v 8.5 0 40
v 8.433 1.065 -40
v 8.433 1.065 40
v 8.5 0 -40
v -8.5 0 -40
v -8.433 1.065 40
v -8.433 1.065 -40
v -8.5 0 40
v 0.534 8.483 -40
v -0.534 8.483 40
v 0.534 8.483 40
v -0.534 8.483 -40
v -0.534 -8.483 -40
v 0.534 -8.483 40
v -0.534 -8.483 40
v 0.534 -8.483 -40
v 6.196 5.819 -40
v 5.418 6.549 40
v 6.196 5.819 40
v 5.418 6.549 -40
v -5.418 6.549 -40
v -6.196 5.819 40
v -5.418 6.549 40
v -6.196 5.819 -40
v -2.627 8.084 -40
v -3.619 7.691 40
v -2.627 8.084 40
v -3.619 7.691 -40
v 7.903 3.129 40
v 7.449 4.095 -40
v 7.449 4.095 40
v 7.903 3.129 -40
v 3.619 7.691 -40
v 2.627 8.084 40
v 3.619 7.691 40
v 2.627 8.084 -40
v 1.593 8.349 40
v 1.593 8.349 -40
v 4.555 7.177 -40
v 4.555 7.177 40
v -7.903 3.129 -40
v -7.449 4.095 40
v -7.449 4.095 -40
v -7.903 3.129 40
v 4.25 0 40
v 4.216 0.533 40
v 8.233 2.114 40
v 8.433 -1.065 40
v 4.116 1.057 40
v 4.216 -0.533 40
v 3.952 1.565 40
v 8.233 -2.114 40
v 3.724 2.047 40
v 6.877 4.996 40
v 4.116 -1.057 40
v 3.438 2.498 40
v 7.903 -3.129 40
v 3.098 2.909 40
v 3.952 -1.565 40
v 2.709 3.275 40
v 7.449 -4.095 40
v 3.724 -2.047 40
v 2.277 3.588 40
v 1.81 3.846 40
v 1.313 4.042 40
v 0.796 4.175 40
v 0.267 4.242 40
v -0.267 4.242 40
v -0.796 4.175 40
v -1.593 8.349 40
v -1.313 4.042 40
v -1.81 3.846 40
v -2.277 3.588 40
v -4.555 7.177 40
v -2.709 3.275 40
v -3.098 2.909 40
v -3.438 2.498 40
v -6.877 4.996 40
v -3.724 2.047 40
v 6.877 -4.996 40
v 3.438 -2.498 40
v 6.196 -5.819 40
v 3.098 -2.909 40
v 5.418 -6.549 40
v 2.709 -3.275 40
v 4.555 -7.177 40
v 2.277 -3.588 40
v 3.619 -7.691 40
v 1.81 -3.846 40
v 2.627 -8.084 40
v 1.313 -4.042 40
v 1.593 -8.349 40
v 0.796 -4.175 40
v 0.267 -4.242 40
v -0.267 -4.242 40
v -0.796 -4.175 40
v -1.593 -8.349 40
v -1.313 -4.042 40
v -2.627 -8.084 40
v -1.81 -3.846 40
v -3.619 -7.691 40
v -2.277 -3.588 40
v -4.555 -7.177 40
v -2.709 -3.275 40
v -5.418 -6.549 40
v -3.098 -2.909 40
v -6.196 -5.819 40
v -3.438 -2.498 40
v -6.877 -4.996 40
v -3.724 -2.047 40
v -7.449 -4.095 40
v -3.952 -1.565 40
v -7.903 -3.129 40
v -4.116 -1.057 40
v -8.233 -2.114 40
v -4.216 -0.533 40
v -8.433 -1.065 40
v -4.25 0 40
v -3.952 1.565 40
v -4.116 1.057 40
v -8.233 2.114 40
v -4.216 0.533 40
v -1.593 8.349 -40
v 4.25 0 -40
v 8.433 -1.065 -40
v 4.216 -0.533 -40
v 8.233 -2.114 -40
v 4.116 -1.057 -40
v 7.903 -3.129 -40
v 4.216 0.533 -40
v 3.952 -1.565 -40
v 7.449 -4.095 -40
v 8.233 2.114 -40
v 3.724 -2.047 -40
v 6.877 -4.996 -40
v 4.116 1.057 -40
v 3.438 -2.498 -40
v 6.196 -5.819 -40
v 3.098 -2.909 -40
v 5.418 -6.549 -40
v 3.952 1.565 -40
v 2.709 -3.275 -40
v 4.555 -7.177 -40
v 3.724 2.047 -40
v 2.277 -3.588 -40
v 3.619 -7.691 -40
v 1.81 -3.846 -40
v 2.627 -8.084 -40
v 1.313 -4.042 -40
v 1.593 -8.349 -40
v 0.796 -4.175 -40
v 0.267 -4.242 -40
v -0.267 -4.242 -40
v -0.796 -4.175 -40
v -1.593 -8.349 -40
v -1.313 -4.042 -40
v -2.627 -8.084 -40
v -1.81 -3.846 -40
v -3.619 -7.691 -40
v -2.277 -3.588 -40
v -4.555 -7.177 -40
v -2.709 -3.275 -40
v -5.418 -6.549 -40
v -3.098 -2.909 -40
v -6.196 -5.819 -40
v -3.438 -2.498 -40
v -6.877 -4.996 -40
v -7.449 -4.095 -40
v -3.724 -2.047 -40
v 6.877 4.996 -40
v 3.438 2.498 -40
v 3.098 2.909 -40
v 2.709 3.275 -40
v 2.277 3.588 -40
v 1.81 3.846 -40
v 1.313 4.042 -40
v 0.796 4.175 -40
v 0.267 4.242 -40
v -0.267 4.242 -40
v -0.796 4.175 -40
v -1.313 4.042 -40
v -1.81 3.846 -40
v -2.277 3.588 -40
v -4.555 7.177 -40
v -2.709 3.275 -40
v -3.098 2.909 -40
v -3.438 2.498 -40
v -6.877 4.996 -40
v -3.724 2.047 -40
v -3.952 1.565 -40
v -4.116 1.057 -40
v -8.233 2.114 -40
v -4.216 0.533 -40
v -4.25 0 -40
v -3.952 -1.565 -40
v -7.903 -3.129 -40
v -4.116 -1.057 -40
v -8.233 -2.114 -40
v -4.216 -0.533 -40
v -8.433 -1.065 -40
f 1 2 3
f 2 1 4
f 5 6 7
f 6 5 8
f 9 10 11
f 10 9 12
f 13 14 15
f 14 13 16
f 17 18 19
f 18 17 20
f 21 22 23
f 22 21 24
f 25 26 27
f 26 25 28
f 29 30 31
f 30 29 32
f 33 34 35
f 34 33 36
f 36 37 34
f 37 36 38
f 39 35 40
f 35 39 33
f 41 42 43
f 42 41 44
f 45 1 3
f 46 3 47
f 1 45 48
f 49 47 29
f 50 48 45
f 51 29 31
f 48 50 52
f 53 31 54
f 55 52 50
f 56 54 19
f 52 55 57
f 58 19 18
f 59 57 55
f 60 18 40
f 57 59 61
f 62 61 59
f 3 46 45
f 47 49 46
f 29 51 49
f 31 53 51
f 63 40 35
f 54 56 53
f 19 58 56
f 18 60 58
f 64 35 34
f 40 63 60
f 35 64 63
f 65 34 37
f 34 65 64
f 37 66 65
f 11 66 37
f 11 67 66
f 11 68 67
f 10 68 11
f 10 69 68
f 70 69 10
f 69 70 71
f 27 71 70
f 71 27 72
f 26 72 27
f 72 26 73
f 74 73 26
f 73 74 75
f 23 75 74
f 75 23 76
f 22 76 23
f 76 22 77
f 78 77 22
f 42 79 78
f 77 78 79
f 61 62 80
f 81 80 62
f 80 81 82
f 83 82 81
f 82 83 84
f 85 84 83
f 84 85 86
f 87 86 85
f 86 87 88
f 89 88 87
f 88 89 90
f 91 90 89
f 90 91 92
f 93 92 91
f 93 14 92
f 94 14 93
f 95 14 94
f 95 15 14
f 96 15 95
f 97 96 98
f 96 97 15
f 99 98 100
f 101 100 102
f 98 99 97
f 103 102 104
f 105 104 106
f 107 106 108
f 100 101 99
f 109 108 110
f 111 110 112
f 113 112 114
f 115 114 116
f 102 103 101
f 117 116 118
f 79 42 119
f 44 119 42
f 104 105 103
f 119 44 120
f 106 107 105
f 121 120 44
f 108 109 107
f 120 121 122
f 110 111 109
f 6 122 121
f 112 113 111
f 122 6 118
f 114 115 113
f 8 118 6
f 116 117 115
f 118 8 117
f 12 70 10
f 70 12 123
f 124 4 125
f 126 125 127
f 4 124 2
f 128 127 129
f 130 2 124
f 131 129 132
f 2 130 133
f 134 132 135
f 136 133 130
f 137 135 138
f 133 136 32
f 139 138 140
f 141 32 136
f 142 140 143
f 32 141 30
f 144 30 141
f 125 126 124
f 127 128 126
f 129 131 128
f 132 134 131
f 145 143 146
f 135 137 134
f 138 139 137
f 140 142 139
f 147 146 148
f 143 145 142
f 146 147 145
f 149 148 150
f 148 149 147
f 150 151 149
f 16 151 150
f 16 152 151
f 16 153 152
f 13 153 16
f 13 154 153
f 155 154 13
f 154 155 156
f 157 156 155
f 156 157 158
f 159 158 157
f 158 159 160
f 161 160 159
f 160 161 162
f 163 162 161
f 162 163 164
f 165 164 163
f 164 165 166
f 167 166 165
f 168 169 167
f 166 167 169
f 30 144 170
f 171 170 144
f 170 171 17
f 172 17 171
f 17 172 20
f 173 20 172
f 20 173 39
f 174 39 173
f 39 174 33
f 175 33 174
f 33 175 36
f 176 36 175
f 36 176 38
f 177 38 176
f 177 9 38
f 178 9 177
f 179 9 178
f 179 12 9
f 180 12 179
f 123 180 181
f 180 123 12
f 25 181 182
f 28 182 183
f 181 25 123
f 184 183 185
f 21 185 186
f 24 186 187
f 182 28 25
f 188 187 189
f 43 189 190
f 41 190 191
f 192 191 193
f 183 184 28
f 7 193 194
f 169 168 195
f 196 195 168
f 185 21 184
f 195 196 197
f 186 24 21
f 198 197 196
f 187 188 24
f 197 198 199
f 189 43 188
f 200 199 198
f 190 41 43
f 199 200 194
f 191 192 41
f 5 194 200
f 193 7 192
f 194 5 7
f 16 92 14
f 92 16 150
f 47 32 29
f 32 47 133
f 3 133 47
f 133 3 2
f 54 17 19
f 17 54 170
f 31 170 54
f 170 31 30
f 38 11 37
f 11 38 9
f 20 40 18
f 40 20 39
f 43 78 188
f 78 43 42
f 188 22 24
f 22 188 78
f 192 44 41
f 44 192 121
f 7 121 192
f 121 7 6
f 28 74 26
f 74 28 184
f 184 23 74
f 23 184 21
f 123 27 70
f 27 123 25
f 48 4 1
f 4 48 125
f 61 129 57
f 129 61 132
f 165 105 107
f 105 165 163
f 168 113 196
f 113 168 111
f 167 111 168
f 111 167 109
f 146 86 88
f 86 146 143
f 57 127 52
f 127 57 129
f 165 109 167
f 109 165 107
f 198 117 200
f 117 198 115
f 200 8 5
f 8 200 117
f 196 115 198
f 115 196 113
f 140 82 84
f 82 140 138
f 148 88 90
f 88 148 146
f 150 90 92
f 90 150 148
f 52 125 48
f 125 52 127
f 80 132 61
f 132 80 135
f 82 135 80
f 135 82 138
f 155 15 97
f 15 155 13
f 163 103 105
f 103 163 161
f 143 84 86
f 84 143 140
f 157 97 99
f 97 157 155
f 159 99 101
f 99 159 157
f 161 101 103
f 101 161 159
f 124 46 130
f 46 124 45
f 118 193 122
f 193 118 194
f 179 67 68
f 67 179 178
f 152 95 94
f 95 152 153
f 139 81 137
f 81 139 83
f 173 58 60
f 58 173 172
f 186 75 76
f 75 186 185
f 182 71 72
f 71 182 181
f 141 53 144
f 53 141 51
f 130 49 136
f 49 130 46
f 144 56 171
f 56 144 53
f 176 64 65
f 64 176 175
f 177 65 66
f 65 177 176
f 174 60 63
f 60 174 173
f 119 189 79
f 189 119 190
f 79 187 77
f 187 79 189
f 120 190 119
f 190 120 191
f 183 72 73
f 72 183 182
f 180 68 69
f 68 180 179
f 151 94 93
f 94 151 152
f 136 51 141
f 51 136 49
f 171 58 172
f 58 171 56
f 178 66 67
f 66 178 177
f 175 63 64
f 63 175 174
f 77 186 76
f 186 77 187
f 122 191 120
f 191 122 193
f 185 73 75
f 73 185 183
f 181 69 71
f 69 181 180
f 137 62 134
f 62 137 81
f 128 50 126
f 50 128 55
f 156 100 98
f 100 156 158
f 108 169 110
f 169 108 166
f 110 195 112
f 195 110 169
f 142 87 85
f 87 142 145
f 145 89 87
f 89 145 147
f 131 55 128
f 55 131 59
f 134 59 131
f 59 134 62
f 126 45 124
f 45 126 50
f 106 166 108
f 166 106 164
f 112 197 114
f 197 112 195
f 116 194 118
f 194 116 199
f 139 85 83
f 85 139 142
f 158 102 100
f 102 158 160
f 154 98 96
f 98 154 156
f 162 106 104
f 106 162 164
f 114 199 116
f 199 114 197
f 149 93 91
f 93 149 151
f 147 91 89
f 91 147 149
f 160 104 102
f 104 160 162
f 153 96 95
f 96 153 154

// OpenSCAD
$fn = 50;


difference() {
	union() {
		translate(v = [0, 0, -40.0000000000]) {
			cylinder(h = 80, r = 8.5000000000);
		}
	}
	union() {
		translate(v = [0, 0, -100.0000000000]) {
			cylinder(h = 200, r = 4.2500000000);
		}
	}
}
